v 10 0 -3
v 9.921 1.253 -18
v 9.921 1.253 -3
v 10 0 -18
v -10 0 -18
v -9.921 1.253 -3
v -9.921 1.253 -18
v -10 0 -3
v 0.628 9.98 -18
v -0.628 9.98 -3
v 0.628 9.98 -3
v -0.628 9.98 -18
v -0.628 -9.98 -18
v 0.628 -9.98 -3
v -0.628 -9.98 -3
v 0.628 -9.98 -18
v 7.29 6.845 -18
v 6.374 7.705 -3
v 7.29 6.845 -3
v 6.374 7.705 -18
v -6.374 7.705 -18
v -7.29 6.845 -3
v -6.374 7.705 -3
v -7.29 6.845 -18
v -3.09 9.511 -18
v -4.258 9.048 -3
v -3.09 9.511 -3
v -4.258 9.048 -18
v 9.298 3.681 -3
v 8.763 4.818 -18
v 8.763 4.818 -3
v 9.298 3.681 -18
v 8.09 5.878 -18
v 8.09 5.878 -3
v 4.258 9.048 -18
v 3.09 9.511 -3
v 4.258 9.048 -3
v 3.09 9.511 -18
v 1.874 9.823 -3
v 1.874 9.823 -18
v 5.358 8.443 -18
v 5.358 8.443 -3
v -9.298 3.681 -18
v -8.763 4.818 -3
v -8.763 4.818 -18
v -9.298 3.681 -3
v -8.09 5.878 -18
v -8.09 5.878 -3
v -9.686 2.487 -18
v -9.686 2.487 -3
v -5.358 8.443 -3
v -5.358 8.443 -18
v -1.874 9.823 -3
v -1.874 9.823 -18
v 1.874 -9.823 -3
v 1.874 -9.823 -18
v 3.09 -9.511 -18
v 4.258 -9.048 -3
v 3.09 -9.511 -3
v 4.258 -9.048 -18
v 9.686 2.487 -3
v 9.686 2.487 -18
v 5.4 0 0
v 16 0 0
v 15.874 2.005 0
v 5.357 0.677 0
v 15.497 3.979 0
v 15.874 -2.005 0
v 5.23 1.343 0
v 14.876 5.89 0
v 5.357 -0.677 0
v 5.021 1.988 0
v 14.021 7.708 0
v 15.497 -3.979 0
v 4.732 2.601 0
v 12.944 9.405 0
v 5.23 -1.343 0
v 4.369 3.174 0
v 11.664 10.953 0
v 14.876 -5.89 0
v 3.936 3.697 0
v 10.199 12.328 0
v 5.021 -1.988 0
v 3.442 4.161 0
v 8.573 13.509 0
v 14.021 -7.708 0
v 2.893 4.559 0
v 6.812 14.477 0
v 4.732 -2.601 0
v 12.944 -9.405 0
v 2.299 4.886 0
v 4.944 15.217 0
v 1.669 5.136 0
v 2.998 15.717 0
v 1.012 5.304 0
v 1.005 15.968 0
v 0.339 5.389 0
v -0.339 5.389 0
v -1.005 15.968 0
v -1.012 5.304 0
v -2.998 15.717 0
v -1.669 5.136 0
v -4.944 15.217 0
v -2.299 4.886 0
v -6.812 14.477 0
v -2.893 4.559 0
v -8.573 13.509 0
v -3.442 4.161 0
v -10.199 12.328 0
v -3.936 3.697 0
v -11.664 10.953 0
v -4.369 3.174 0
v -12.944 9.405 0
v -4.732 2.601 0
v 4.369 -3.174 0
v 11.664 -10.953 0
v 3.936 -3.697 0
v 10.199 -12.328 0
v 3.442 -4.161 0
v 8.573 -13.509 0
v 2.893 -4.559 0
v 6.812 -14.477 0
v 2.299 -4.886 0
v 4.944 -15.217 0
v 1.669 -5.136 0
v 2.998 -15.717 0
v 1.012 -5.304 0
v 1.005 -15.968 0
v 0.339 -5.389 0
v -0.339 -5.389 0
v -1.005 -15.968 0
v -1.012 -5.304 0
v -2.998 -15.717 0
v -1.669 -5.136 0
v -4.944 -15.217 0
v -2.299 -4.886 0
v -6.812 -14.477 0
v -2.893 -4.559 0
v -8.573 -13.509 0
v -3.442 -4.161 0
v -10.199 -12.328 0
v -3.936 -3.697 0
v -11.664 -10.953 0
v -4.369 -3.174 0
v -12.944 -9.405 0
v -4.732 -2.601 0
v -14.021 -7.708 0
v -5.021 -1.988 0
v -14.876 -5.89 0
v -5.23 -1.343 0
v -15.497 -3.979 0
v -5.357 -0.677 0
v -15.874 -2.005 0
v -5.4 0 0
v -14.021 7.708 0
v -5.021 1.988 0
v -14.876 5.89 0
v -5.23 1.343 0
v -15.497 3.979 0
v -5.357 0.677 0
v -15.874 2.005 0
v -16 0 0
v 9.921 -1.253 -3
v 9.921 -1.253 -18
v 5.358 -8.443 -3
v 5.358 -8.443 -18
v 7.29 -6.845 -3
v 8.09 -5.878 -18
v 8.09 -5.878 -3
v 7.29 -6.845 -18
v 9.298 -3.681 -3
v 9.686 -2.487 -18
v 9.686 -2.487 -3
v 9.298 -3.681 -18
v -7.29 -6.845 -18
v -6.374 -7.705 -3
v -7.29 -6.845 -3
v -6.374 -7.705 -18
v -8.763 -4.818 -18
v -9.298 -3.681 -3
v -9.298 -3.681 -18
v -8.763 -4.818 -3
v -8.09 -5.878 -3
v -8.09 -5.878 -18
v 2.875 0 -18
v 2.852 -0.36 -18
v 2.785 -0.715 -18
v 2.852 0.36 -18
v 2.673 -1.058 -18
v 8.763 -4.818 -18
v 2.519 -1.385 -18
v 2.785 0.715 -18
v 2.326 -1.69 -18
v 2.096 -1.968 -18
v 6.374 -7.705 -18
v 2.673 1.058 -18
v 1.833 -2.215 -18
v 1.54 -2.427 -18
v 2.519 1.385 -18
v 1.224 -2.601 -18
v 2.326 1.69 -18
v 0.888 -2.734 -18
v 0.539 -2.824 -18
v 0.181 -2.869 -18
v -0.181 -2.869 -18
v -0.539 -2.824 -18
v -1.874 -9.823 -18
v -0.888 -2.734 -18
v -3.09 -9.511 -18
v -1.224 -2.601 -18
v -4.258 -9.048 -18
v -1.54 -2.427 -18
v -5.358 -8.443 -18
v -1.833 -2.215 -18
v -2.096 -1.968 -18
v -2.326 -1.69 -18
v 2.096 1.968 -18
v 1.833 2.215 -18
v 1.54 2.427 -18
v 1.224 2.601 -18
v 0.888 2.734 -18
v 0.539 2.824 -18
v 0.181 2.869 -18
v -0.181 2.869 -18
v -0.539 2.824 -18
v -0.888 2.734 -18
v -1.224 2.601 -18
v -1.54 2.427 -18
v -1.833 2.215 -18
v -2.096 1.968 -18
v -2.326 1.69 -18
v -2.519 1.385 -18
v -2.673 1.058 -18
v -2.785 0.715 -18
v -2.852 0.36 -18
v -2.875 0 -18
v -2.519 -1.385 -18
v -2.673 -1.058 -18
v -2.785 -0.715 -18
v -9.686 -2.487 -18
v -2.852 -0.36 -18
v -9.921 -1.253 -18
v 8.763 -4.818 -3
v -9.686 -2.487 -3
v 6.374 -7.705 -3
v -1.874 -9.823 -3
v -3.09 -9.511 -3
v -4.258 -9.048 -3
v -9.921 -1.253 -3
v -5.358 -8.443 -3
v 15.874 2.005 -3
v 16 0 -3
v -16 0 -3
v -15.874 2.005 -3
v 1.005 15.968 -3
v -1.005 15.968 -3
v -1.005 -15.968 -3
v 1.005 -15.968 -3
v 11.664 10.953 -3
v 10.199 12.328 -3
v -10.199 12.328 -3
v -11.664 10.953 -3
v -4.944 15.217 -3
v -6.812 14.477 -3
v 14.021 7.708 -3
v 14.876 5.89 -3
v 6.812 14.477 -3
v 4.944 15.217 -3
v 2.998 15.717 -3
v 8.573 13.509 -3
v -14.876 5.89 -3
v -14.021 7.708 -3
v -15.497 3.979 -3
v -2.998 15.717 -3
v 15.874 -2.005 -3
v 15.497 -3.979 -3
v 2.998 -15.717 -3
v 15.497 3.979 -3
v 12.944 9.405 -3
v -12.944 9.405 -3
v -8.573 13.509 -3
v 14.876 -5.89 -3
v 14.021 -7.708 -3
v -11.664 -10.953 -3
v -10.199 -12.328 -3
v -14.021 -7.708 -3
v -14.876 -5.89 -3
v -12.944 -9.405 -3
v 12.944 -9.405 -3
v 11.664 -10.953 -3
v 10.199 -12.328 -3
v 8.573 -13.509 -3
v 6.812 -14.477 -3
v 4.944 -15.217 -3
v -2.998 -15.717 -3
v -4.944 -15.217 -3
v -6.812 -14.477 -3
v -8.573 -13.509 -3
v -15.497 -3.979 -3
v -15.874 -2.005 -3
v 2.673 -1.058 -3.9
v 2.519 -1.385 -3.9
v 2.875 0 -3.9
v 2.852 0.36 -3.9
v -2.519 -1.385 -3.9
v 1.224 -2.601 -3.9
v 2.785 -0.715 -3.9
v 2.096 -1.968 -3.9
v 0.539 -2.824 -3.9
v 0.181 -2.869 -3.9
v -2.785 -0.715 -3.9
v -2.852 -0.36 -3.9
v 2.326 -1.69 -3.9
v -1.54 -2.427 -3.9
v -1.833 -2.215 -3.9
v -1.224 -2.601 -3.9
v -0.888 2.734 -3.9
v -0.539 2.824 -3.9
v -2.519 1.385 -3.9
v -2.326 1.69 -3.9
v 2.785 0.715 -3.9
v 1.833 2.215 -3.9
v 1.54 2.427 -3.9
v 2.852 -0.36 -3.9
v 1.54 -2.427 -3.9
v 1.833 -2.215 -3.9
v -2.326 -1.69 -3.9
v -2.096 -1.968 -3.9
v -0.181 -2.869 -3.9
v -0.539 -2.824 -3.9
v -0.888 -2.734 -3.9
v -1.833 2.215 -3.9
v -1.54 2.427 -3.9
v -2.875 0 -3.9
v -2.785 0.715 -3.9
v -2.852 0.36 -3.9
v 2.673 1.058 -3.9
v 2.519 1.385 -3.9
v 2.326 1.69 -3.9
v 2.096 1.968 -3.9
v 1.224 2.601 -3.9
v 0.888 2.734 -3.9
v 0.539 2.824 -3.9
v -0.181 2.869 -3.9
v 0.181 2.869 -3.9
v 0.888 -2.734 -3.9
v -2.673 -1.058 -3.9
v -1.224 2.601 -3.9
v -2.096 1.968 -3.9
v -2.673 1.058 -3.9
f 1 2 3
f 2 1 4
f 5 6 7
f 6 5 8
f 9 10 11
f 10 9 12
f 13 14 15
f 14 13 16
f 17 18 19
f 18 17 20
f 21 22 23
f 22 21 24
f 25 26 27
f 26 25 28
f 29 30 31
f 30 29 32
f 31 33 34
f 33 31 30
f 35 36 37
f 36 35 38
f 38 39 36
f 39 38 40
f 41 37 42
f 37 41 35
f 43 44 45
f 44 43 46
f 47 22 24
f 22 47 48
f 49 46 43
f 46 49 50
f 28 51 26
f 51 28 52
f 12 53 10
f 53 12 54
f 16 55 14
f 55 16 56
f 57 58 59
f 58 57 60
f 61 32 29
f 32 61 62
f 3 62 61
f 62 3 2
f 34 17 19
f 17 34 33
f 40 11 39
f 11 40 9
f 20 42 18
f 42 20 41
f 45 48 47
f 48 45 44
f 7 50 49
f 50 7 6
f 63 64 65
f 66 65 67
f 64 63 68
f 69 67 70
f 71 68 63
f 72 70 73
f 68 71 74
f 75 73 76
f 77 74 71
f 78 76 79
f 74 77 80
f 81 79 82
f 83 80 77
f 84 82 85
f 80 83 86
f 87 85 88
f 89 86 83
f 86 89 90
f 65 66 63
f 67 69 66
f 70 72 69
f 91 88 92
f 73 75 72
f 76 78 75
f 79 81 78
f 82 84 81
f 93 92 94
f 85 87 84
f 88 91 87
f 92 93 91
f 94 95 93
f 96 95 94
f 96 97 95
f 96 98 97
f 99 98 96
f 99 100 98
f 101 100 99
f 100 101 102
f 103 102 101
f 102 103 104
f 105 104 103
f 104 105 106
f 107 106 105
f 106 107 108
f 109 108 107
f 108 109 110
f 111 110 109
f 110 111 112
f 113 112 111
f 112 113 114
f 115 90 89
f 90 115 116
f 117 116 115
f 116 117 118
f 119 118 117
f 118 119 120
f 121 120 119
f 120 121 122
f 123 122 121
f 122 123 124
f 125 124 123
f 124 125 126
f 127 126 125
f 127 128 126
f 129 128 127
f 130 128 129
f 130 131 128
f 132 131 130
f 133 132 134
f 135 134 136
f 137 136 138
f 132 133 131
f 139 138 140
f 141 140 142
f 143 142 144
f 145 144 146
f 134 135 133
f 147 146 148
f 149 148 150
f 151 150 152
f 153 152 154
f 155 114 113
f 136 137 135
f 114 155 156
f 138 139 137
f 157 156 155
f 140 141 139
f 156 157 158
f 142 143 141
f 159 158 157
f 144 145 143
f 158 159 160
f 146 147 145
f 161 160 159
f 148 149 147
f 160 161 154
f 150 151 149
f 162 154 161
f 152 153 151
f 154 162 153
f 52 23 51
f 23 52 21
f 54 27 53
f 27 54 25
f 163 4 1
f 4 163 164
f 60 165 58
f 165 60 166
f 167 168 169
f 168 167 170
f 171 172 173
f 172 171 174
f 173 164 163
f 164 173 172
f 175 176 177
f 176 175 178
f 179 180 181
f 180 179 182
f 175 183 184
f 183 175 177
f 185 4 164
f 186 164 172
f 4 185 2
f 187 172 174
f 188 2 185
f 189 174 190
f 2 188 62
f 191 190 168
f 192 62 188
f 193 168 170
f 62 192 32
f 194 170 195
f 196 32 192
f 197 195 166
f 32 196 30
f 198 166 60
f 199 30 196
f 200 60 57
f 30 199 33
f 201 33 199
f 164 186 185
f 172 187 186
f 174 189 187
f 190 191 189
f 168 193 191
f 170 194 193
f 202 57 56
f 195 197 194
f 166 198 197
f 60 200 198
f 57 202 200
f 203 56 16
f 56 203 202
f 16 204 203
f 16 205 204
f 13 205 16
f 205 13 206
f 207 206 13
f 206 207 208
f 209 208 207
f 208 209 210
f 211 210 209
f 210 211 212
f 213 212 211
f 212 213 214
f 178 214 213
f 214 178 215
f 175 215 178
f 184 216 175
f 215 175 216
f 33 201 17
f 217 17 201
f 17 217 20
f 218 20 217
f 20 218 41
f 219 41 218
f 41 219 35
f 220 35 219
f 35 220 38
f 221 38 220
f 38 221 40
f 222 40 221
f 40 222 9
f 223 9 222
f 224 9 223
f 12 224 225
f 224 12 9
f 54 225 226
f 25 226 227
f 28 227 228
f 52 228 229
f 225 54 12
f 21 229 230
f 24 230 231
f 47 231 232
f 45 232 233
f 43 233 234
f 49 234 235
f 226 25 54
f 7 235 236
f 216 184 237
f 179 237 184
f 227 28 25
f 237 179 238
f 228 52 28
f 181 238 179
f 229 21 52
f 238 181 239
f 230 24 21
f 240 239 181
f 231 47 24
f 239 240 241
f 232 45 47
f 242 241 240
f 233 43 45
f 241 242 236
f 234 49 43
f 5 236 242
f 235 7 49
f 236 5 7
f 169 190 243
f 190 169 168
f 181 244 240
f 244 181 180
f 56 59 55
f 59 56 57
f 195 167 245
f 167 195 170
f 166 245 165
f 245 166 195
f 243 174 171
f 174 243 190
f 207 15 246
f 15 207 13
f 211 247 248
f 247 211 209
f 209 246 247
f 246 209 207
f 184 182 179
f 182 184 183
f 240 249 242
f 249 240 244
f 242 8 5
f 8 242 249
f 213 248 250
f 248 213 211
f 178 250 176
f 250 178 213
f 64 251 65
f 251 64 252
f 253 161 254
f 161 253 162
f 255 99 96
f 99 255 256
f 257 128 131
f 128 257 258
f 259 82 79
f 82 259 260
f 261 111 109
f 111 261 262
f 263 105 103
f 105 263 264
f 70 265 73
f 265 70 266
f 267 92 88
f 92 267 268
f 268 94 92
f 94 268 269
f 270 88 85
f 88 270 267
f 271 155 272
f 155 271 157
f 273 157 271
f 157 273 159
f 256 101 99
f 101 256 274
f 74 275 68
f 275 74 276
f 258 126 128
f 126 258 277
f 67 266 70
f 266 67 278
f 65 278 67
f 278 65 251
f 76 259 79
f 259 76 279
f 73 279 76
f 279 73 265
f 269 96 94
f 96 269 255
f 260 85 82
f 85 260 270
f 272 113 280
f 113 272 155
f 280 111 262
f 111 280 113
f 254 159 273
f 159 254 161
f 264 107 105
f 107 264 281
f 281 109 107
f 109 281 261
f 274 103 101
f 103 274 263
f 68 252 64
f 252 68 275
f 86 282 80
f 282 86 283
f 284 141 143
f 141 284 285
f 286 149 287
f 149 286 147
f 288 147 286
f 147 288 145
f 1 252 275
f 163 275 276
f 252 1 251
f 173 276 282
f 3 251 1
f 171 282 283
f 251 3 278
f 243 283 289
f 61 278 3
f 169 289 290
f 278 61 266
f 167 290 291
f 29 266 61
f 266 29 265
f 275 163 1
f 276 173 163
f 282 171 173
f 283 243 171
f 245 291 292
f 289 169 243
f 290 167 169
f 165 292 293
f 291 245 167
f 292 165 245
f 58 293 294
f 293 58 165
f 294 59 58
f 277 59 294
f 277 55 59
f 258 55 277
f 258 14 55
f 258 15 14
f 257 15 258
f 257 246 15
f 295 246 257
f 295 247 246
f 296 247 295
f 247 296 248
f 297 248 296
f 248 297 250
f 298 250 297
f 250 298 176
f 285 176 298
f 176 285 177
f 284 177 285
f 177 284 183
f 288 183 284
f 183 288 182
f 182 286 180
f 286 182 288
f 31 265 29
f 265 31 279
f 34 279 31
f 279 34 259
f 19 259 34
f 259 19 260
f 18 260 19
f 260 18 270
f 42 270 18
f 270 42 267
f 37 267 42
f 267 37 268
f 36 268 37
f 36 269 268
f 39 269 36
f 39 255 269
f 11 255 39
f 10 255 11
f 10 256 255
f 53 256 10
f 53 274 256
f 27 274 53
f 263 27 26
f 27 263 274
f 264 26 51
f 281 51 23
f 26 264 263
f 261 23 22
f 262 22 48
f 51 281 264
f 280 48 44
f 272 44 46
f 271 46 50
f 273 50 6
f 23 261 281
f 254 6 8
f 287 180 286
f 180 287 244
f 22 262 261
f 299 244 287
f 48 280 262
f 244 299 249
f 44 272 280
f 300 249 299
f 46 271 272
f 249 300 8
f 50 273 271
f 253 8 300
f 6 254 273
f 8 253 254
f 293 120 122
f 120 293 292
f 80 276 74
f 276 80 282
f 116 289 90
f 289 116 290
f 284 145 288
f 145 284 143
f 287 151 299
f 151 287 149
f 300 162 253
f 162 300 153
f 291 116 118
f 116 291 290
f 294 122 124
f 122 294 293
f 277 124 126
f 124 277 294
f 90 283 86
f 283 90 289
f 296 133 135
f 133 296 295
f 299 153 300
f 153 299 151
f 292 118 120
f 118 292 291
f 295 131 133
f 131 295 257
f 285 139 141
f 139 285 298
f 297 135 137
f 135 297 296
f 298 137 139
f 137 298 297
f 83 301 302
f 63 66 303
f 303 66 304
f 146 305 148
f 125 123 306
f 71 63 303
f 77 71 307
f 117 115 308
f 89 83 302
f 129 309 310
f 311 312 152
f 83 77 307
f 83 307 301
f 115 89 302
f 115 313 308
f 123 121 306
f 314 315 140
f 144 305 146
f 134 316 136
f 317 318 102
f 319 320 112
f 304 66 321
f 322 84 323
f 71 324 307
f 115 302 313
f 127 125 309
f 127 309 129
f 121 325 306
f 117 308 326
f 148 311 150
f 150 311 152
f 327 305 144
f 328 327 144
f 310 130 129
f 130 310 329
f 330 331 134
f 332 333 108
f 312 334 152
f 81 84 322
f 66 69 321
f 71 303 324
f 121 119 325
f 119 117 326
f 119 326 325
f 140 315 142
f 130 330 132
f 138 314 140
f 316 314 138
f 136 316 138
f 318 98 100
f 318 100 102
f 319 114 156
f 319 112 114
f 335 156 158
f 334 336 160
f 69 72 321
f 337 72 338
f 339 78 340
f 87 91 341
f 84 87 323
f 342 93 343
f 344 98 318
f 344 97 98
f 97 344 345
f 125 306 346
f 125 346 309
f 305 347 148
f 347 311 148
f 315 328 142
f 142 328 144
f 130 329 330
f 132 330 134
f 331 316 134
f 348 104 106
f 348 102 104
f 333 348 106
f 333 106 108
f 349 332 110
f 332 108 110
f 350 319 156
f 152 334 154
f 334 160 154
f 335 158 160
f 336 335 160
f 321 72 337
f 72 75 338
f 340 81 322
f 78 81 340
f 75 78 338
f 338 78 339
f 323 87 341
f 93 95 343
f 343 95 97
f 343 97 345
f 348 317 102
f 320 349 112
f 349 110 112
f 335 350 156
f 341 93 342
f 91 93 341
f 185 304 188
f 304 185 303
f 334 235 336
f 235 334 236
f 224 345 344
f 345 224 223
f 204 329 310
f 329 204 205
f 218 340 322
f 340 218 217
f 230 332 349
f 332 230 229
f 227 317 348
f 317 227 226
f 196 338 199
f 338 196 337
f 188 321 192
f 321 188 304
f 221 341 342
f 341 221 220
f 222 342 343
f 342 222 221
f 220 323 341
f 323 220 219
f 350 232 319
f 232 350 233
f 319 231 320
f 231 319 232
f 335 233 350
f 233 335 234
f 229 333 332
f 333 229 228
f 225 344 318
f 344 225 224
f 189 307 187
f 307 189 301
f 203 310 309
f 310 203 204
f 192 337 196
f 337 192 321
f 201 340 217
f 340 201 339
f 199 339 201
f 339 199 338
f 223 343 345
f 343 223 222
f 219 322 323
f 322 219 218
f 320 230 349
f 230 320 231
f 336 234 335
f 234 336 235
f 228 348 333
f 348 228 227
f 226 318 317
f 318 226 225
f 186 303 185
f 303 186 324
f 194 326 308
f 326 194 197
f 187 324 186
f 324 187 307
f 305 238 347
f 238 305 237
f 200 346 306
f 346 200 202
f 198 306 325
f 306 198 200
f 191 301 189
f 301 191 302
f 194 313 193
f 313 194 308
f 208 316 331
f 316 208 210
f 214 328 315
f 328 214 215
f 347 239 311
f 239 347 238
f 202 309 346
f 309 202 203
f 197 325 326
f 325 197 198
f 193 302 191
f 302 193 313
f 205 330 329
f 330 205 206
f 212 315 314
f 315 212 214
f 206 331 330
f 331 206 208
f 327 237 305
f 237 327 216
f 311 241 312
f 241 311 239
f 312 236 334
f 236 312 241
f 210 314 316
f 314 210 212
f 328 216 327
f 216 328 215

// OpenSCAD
$fn = 50;


difference() {
	union() {
		translate(v = [0, 0, -18.0000000000]) {
			cylinder(h = 18, r = 10.0000000000);
		}
		translate(v = [0, 0, -3.0000000000]) {
			cylinder(h = 3, r = 16.0000000000);
		}
	}
	union() {
		translate(v = [0, 0, 0]) {
			rotate(a = [0, 0, 0]) {
				difference() {
					union() {
						#translate(v = [0, 0, -18.0000000000]) {
							cylinder(h = 18, r = 2.6000000000);
						}
						#translate(v = [0, 0, -3.9000000000]) {
							cylinder(h = 3.9000000000, r = 10.0000000000, r1 = 2.8750000000, r2 = 5.4000000000);
						}
						#translate(v = [0, 0, -18.0000000000]) {
							cylinder(h = 18, r = 2.8750000000);
						}
						#translate(v = [0, 0, -18.0000000000]) {
							cylinder(h = 18, r = 2.6000000000);
						}
					}
					union();
				}
			}
		}
	}
}
